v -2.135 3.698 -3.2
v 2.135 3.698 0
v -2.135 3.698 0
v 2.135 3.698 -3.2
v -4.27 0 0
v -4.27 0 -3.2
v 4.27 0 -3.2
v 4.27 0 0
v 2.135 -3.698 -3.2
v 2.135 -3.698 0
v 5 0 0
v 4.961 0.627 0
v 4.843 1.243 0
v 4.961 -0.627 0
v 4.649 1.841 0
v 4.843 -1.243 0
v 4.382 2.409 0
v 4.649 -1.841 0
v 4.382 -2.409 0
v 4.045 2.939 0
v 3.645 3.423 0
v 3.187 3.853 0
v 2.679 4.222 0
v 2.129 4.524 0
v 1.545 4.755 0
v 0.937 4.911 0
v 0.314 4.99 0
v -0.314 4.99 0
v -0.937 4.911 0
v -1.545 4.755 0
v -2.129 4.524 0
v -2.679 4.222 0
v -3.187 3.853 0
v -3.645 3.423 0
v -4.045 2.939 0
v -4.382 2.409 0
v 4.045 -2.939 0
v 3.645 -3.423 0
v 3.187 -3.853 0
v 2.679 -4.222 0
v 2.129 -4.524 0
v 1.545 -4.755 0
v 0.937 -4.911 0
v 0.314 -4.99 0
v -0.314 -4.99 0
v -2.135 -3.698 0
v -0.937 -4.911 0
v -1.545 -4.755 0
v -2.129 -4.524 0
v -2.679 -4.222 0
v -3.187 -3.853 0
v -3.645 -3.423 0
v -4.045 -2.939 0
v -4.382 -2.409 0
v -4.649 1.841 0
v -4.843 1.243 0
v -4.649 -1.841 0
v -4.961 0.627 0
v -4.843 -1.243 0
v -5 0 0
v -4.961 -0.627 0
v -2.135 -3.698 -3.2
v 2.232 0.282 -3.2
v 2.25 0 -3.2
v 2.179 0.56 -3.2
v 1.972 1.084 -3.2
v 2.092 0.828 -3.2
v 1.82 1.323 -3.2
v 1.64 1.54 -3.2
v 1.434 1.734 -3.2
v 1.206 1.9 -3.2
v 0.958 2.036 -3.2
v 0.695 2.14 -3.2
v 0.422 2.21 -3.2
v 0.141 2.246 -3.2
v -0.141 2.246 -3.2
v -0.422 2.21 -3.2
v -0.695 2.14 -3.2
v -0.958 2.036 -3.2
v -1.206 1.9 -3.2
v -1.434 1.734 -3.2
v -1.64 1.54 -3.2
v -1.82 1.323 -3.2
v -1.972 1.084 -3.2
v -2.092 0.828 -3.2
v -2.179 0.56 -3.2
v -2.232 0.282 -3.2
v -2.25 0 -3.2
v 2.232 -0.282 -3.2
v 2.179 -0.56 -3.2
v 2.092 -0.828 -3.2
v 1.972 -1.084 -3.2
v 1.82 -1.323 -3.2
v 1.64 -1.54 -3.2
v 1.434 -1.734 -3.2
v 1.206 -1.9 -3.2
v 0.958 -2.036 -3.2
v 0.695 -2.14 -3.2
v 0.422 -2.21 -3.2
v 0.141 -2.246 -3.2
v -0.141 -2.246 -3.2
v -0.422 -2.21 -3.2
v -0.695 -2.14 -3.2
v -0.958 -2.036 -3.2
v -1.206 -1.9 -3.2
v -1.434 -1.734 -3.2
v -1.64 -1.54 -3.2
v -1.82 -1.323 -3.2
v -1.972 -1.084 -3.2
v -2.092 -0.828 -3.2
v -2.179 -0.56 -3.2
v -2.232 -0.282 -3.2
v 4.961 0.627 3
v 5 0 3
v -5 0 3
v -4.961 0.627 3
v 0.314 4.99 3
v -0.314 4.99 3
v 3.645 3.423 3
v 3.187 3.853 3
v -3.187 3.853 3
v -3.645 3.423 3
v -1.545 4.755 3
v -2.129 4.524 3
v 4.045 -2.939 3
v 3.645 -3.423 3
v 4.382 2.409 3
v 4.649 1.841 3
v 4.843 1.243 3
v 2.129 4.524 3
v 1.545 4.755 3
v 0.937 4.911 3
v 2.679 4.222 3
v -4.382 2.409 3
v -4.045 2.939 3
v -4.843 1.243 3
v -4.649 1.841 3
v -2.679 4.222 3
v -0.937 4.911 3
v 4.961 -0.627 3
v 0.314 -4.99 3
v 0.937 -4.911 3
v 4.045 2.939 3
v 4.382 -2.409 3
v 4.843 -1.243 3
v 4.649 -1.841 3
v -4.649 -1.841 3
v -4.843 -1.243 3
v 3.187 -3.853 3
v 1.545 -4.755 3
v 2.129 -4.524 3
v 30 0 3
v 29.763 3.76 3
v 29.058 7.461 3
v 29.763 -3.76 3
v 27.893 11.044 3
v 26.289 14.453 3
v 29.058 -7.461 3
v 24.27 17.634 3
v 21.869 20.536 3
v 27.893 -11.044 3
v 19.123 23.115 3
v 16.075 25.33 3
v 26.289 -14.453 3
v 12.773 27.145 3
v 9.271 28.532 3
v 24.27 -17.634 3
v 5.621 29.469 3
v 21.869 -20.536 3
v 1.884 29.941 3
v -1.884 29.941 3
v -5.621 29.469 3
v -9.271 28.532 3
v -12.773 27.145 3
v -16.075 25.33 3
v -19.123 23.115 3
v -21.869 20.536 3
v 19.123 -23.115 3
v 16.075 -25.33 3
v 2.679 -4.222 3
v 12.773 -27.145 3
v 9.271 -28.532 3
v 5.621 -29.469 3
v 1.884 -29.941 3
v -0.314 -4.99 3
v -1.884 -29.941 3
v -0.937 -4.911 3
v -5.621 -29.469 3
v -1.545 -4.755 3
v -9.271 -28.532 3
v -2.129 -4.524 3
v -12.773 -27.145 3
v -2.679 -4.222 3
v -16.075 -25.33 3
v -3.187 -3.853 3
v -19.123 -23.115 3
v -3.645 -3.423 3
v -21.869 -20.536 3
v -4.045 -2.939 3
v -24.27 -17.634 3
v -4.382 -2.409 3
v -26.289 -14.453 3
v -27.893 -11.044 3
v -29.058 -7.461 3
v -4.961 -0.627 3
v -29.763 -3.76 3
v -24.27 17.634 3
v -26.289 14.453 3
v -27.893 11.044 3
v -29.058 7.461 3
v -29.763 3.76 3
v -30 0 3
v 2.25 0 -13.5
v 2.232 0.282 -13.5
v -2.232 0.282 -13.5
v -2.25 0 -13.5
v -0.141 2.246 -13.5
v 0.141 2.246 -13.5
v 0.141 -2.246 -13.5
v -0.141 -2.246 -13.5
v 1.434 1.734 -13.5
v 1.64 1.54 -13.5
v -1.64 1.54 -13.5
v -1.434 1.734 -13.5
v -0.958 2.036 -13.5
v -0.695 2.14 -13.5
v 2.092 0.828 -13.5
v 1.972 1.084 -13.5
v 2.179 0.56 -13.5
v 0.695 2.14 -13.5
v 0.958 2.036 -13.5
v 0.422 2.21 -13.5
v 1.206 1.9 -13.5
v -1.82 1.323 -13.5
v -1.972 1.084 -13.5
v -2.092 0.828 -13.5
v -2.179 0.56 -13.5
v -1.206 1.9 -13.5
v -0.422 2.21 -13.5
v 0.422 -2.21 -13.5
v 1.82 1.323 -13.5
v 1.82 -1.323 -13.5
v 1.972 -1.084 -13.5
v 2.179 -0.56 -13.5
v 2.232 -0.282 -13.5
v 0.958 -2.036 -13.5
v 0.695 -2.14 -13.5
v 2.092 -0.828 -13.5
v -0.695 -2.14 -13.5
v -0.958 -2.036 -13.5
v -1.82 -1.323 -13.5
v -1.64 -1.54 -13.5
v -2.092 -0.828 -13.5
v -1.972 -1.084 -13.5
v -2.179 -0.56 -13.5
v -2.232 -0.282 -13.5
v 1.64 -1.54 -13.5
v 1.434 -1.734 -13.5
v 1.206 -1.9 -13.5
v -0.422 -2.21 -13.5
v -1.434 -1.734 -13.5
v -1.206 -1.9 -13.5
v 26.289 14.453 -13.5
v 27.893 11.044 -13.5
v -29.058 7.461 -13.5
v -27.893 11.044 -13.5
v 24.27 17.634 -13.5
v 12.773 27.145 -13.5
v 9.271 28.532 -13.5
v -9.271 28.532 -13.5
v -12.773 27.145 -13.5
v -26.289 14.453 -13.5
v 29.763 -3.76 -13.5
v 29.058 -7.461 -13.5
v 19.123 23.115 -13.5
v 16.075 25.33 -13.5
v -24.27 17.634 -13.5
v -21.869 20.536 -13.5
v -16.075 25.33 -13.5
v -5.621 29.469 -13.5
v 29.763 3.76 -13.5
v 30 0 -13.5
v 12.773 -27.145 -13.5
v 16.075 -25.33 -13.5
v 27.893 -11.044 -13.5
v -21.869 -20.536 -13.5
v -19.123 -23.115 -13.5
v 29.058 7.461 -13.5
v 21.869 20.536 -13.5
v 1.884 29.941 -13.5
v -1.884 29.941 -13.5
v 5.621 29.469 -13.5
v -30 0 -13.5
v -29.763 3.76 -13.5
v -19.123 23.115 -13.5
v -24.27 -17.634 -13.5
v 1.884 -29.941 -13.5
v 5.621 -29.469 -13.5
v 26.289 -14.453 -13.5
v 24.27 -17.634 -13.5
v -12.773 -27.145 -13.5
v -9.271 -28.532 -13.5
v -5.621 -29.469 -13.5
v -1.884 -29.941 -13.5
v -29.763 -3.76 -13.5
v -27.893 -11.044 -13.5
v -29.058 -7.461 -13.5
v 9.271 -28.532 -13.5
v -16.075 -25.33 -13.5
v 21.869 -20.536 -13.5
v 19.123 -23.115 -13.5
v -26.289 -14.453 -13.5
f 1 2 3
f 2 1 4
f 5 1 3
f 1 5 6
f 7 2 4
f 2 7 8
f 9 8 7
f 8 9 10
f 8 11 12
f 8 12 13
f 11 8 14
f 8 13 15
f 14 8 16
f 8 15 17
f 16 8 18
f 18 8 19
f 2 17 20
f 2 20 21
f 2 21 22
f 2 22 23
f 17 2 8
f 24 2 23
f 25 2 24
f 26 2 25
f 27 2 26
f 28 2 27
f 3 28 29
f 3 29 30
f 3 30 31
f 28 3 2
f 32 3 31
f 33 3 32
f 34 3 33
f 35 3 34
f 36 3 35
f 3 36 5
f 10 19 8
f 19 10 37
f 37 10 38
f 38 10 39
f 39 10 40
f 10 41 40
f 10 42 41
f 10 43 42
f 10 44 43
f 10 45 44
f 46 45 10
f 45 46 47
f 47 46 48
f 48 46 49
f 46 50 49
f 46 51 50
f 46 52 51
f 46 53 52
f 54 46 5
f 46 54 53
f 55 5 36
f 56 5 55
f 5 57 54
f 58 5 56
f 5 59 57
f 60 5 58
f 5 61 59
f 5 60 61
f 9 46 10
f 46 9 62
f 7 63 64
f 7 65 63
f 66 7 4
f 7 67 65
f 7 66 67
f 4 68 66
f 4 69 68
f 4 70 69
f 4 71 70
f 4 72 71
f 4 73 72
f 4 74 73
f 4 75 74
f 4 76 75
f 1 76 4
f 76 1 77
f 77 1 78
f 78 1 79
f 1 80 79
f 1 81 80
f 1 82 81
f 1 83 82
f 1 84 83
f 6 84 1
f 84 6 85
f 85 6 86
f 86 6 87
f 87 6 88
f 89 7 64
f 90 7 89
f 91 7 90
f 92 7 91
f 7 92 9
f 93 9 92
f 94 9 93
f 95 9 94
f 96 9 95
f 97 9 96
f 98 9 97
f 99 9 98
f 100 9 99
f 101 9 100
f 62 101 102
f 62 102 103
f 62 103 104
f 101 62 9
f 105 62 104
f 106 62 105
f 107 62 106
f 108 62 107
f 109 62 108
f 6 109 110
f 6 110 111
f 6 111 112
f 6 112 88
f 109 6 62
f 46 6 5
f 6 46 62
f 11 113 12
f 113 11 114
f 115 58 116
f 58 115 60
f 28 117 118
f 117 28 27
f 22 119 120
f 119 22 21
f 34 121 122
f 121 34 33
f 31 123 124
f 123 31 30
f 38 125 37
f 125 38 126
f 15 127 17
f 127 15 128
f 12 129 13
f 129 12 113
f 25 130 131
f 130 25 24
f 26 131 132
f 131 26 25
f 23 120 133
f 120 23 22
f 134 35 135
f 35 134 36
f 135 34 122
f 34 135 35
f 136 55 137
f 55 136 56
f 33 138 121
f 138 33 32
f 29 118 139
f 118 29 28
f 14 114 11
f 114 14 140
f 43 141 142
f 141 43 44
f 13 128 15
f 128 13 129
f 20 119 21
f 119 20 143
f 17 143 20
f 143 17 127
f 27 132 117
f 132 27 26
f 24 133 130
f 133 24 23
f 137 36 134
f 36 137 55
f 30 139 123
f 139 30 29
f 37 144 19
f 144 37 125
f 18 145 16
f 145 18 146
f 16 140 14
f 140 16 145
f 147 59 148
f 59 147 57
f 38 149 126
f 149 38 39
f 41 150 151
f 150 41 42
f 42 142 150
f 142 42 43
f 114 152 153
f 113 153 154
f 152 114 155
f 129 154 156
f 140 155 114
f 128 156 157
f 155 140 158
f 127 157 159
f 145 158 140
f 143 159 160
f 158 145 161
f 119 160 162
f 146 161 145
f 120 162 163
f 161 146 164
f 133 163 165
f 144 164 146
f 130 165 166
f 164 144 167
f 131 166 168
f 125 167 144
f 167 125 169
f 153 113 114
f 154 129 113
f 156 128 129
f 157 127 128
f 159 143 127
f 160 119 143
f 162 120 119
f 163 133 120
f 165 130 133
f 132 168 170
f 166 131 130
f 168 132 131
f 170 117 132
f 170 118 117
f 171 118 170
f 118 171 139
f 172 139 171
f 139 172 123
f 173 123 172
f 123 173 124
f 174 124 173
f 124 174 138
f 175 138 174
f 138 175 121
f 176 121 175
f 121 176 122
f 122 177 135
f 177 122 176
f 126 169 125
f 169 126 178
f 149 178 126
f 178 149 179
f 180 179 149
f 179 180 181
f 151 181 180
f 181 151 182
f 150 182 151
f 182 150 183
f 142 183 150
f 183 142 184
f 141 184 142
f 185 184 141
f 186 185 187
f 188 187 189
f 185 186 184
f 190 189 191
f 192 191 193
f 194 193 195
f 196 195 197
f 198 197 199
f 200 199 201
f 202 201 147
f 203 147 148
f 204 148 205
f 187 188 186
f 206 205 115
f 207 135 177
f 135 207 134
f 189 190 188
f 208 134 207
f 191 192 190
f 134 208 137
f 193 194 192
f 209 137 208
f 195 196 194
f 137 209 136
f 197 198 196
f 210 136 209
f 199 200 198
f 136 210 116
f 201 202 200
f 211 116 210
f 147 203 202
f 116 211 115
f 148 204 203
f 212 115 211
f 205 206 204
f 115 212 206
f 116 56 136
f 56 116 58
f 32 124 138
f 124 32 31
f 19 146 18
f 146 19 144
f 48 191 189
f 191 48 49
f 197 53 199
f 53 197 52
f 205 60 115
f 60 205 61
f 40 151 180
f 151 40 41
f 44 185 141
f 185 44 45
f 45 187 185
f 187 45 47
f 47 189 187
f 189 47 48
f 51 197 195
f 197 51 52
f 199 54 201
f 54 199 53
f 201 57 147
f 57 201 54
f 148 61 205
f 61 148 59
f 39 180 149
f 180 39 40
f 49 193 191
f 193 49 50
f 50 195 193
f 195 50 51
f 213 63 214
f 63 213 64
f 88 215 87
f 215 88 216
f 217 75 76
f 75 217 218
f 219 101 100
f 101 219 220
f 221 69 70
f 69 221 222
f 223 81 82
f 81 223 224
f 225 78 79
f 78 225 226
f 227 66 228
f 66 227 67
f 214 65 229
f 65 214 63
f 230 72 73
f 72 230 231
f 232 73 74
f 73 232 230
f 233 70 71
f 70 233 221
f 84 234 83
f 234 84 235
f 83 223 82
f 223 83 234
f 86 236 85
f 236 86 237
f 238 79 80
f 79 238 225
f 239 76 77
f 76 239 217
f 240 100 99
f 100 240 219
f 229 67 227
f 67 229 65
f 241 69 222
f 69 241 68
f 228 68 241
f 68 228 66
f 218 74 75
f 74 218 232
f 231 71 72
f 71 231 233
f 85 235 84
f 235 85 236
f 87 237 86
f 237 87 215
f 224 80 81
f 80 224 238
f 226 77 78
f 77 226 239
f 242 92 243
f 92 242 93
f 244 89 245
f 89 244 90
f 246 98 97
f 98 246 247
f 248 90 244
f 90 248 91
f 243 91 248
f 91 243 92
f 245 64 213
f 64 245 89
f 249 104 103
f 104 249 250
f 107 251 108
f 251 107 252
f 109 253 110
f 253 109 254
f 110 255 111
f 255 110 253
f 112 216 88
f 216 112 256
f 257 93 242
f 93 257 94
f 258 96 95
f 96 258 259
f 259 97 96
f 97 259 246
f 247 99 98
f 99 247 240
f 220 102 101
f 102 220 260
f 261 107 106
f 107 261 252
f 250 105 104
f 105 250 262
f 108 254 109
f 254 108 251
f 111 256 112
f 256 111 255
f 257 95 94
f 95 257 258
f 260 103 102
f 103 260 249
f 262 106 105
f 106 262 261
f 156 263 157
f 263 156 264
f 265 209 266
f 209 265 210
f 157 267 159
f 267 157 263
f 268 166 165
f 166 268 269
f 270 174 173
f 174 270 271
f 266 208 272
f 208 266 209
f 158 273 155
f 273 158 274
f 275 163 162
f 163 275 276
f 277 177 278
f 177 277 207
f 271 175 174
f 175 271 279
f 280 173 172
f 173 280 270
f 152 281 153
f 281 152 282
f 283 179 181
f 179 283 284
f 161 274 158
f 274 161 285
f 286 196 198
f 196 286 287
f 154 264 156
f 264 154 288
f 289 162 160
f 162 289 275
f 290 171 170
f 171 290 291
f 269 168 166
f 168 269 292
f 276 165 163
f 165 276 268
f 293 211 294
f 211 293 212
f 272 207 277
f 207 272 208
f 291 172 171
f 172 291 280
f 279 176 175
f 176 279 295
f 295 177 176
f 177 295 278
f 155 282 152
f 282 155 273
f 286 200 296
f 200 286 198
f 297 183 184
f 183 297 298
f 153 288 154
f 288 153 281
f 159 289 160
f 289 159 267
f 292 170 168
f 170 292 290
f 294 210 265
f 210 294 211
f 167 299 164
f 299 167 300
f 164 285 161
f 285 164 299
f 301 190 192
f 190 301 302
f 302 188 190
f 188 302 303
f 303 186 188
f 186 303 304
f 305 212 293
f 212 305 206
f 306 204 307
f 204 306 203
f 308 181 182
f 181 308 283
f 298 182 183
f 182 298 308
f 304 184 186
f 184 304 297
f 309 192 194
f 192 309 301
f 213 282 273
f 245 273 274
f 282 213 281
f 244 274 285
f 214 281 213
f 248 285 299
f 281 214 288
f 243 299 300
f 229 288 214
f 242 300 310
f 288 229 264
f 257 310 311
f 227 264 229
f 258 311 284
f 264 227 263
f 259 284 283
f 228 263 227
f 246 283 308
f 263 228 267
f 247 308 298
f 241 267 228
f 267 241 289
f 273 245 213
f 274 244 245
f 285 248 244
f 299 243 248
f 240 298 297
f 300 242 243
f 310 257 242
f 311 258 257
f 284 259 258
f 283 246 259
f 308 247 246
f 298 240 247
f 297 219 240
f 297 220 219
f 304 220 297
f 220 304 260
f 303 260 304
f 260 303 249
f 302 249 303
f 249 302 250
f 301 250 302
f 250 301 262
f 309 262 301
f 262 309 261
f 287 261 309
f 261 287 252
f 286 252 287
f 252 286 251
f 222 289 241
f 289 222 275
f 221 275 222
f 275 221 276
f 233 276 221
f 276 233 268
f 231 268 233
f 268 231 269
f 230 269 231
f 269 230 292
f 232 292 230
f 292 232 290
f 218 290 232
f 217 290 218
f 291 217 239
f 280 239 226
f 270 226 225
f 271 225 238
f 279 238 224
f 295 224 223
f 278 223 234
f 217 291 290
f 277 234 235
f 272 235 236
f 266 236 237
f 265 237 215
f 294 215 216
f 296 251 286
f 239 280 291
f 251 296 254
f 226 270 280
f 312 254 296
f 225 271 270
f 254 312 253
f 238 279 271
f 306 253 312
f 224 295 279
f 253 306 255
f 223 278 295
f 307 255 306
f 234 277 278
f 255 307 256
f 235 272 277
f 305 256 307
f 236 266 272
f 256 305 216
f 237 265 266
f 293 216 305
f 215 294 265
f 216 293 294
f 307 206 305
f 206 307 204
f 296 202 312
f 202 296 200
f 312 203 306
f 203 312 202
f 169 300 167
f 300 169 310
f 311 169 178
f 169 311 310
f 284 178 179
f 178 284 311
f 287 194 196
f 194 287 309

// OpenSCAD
$fn = 50;


difference() {
	union() {
		translate(v = [0, 0, -13.5000000000]) {
			cylinder(h = 16.5000000000, r = 30.0000000000);
		}
	}
	union() {
		translate(v = [0, 0, 0]) {
			rotate(a = [0, 0, 0]) {
				difference() {
					union() {
						translate(v = [0, 0, -3.2000000000]) {
							linear_extrude(height = 3.2000000000) {
								polygon(points = [[4.2698000000, 0.0000000000], [2.1349000000, 3.6977552691], [-2.1349000000, 3.6977552691], [-4.2698000000, 0.0000000000], [-2.1349000000, -3.6977552691], [2.1349000000, -3.6977552691]]);
							}
						}
					}
					union();
				}
			}
		}
		#cylinder(h = 3, r = 5.0000000000);
		#translate(v = [0, 0, -100.0000000000]) {
			cylinder(h = 200, r = 2.2500000000);
		}
	}
}
